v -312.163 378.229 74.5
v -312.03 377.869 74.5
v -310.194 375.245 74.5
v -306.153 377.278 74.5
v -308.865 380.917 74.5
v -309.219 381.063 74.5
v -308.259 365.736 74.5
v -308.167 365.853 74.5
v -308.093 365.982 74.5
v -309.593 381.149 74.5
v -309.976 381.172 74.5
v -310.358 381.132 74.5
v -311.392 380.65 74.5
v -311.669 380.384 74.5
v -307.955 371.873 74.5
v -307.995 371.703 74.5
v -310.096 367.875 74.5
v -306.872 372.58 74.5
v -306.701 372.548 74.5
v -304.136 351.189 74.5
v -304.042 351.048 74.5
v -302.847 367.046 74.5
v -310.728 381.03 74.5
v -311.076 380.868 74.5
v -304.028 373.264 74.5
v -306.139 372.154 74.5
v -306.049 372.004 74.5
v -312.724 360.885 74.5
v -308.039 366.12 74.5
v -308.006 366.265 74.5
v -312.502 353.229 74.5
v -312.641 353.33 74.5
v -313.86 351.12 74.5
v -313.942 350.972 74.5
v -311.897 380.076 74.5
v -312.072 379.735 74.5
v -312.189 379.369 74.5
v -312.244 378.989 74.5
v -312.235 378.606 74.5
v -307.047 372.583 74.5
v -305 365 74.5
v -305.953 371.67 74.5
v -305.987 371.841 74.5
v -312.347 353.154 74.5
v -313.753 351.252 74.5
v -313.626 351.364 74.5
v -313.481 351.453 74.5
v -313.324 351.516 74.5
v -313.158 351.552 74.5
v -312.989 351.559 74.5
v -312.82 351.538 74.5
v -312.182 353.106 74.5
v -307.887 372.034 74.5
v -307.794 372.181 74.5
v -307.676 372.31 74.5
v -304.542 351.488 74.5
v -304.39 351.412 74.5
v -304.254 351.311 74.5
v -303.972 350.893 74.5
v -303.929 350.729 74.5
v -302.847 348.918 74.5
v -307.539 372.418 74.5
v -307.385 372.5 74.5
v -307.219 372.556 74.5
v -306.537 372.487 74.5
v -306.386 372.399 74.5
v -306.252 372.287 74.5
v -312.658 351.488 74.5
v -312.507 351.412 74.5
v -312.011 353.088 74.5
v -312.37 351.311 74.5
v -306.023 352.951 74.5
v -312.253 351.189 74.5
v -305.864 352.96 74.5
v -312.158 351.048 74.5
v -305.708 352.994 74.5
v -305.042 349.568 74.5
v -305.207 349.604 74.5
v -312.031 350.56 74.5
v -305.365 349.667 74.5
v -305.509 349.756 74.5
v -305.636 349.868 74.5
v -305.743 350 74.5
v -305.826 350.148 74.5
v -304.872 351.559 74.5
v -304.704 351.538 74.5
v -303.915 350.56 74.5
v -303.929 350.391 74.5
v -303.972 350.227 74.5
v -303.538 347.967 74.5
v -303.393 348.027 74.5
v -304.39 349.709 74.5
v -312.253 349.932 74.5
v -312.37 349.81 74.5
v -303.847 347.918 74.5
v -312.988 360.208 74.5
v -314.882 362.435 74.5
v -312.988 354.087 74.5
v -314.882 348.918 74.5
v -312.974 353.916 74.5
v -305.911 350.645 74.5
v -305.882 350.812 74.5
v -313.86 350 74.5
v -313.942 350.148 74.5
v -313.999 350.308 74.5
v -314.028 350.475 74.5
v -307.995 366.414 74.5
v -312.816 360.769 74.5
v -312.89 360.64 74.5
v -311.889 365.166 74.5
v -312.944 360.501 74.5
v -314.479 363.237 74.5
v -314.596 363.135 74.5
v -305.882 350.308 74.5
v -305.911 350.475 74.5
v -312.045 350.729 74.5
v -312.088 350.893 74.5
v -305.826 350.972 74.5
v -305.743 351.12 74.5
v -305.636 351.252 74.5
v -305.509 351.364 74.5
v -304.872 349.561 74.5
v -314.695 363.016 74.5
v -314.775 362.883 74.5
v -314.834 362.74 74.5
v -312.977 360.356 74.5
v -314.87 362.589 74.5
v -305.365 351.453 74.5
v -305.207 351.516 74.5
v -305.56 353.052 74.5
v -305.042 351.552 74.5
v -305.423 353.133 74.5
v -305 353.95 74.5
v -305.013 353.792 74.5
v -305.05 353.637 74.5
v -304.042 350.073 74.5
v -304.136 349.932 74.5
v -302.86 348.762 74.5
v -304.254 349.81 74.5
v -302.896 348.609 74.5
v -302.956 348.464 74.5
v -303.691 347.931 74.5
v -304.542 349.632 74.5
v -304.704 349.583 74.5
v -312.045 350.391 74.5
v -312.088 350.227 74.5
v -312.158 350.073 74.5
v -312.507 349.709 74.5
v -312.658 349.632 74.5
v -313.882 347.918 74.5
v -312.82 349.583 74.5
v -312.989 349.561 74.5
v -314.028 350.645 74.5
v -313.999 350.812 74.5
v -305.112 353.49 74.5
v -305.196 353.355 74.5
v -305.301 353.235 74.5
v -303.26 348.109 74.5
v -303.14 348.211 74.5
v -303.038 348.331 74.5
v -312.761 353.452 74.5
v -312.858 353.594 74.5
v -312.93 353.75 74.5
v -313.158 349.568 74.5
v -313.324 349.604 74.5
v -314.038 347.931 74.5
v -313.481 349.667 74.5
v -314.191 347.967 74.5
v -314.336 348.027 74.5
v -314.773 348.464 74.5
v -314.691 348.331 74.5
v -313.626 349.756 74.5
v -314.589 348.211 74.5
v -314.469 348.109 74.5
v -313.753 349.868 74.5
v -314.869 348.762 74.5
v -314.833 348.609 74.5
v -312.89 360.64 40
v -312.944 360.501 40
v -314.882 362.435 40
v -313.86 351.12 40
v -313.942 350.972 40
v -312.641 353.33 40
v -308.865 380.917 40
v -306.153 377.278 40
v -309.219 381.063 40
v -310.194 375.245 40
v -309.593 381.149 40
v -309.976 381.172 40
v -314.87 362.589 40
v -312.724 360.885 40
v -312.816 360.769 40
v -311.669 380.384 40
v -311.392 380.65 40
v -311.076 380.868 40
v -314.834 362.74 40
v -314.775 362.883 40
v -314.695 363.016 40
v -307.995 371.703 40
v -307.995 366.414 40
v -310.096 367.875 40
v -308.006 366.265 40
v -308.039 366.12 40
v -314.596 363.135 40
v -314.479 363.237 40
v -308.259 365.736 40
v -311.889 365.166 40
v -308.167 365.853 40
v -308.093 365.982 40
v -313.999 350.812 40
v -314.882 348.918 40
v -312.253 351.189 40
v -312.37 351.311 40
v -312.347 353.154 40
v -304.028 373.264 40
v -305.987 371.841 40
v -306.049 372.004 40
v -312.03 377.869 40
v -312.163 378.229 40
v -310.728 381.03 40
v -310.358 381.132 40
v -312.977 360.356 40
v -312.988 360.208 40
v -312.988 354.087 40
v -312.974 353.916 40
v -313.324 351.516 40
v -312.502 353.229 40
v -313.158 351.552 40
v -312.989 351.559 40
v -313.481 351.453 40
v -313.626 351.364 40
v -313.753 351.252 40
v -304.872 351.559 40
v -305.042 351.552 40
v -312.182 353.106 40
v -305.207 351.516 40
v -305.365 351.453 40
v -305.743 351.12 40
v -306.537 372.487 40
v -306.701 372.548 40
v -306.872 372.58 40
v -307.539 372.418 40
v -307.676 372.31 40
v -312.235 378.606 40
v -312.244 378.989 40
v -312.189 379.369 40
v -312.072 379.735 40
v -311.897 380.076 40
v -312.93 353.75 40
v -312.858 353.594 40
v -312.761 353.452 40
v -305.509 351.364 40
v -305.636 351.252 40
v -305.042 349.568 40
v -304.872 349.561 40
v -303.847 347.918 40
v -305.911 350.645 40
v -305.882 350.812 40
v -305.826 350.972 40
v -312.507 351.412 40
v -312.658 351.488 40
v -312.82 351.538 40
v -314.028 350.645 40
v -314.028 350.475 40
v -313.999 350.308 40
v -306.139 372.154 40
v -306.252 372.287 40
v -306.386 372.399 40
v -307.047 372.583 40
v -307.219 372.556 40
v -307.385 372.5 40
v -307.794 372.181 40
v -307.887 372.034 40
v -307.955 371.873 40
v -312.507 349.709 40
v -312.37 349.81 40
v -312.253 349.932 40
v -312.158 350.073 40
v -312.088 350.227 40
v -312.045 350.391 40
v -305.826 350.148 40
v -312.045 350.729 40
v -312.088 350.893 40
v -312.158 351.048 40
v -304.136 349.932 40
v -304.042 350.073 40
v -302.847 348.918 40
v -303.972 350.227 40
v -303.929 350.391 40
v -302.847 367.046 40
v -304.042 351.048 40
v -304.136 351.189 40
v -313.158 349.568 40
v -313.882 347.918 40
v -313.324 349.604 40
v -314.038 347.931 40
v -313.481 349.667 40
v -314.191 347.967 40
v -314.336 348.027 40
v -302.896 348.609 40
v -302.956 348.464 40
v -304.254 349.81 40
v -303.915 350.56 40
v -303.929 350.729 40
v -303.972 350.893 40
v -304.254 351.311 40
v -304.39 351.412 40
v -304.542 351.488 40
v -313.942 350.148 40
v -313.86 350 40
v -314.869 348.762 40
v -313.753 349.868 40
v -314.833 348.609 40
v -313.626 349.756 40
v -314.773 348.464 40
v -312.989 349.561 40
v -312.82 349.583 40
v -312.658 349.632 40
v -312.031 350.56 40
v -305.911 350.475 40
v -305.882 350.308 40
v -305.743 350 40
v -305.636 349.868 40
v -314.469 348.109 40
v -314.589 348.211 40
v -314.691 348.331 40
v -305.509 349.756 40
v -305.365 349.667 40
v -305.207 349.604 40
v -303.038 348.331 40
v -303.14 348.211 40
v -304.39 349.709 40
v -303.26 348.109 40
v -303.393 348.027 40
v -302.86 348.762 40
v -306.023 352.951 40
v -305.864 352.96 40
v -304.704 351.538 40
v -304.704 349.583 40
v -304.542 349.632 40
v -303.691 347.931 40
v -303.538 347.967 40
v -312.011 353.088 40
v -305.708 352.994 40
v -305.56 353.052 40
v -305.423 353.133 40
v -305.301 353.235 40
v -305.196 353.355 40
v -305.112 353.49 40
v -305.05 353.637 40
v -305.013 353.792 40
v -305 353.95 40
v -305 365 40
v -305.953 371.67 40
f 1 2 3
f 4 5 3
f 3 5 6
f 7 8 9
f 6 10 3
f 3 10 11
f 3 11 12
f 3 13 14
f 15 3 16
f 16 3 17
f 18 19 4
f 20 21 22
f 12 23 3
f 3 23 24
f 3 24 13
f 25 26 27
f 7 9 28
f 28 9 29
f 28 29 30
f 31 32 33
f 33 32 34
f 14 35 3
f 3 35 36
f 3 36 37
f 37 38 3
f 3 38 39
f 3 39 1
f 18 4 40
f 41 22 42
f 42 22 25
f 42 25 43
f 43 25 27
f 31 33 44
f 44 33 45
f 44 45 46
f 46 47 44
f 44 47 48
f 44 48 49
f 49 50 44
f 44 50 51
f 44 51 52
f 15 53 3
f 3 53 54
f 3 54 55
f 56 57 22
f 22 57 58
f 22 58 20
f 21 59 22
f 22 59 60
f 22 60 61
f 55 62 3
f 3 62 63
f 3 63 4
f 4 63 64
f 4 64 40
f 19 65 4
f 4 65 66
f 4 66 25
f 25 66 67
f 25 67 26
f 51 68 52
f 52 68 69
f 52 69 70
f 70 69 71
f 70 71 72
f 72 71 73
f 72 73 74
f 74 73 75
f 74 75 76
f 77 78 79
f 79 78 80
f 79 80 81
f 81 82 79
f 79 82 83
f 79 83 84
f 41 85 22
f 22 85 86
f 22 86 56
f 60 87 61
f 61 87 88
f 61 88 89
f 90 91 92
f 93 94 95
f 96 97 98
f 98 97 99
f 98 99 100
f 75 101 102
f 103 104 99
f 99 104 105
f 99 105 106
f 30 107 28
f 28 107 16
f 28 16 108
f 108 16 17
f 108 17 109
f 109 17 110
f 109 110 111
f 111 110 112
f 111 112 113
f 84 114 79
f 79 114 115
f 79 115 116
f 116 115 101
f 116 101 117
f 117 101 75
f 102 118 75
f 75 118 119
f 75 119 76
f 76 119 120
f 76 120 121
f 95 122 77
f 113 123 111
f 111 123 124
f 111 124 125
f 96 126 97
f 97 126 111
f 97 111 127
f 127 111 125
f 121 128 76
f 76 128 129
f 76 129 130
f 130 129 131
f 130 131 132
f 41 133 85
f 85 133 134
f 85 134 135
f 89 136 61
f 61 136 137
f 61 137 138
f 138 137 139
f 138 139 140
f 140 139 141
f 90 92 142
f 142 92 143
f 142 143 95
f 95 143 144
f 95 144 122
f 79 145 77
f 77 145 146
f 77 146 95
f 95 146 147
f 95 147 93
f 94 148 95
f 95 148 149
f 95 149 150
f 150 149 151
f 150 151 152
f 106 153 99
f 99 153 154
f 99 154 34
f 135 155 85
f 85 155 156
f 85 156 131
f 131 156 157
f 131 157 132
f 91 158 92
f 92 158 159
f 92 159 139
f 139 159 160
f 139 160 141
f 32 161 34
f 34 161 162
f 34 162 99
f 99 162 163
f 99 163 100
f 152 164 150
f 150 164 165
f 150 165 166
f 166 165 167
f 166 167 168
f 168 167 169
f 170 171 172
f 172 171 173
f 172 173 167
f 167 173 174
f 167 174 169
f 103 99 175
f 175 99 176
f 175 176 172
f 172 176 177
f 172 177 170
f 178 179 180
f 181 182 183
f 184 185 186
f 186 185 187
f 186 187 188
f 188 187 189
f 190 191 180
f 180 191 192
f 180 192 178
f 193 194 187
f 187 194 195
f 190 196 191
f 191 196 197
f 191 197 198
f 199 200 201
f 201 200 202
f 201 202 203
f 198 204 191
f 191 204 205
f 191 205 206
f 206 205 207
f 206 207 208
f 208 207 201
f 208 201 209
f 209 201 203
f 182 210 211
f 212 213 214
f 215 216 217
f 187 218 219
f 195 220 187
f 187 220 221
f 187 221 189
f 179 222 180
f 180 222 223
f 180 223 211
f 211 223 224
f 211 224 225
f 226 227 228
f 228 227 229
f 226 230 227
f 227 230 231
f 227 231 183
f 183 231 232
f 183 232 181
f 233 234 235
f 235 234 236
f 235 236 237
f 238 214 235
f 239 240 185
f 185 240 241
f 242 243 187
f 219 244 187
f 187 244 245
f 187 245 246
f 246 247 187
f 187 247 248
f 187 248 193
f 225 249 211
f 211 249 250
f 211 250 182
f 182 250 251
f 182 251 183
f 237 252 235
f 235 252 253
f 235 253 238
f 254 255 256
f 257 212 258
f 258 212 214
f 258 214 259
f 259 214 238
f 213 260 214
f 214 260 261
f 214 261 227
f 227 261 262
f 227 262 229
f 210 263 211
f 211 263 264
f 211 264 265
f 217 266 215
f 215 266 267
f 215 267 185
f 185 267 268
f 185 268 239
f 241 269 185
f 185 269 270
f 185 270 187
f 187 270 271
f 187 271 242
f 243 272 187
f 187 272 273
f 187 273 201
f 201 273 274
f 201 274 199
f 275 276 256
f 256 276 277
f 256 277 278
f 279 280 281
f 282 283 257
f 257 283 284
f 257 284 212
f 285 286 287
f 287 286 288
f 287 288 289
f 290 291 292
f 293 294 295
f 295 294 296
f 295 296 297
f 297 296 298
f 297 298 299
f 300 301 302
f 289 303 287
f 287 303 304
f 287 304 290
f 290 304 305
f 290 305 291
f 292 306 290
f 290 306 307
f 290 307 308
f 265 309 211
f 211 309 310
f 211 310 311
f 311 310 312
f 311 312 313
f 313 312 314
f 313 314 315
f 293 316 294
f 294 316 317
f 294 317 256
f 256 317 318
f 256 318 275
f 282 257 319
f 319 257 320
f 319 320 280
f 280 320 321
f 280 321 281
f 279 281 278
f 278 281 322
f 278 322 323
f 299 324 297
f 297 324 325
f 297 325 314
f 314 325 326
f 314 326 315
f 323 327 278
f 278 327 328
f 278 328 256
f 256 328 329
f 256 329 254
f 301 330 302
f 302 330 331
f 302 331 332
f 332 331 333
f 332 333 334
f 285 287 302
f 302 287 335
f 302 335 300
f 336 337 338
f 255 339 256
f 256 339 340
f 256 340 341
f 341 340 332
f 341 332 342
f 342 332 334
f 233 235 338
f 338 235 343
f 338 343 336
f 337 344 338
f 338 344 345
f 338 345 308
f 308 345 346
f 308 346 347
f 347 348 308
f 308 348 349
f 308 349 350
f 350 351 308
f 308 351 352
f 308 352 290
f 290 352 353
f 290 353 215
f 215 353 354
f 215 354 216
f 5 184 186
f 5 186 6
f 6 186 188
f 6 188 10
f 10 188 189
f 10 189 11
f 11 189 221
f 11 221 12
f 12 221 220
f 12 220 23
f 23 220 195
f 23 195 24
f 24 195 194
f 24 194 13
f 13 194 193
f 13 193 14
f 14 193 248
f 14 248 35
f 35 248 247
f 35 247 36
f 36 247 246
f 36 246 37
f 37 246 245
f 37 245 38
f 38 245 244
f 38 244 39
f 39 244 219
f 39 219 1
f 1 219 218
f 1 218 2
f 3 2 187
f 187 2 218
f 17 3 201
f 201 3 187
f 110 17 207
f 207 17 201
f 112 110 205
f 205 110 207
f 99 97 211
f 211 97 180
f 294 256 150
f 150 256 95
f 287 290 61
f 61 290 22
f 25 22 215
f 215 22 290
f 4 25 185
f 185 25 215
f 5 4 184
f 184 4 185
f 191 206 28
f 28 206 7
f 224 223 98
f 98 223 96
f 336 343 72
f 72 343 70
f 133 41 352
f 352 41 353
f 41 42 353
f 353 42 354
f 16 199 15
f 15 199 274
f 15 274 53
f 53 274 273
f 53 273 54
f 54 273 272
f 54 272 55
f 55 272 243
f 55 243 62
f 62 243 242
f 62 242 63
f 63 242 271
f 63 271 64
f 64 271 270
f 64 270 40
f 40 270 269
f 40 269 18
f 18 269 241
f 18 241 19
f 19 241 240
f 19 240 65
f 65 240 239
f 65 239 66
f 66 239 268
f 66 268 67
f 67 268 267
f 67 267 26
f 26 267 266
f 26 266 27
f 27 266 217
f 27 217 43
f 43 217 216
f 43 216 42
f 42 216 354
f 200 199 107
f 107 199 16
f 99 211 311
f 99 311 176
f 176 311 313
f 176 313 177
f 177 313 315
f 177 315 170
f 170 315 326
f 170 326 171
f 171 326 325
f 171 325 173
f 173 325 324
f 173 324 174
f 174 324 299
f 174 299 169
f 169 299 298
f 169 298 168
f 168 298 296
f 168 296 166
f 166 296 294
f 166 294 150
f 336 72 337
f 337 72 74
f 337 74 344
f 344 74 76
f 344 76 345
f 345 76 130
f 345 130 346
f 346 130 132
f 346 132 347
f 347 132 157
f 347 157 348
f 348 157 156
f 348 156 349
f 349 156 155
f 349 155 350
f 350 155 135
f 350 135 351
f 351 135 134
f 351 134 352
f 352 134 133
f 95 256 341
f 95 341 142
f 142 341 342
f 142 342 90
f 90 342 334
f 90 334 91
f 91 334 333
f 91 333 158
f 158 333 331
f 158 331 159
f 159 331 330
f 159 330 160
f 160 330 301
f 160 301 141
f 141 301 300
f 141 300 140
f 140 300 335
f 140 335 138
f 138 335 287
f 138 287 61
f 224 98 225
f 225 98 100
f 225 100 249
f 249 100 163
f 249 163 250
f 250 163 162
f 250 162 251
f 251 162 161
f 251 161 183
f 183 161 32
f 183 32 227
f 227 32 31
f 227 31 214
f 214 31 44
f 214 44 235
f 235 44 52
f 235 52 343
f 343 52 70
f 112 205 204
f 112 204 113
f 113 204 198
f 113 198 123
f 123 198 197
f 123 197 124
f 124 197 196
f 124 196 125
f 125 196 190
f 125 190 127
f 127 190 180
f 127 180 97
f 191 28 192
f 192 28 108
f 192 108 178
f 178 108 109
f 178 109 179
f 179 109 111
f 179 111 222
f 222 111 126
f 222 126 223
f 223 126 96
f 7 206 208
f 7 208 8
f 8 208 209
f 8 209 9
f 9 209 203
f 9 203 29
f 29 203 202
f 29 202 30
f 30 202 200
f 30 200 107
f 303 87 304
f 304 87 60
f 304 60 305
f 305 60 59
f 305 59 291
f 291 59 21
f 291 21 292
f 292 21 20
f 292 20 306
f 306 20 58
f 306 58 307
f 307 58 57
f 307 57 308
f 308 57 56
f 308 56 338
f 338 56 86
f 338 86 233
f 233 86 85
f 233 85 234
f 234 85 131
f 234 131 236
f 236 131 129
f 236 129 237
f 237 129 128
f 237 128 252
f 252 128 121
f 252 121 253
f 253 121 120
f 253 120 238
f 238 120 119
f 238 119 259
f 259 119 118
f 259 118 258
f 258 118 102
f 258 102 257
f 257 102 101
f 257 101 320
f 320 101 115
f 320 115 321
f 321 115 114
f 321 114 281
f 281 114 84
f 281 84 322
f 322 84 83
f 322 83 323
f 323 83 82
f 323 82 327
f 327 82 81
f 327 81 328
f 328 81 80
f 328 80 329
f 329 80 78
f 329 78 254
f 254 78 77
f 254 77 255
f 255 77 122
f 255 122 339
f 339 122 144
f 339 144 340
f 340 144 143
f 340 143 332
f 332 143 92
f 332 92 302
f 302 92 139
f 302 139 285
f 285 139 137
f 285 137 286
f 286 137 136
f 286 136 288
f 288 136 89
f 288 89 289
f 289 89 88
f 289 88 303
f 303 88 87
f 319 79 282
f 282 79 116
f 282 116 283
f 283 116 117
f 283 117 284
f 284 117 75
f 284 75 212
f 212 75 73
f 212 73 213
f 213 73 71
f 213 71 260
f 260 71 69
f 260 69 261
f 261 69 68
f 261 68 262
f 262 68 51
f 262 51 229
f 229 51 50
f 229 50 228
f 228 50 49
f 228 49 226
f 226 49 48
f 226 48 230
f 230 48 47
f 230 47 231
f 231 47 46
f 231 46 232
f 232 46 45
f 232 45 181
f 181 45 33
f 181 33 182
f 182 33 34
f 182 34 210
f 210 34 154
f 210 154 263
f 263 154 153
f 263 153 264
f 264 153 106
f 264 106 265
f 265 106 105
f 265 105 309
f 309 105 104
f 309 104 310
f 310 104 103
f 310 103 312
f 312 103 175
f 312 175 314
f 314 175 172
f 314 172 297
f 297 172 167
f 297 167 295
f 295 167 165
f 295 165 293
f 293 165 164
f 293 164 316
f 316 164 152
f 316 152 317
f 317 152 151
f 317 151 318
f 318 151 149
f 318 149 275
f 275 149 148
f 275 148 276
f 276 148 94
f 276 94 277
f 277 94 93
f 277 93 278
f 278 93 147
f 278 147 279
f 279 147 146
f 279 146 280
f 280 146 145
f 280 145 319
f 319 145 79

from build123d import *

# Parameters (mm, degrees)
BOSS_EXTRUDE1_DEPTH = 34.5
FILLET1_R           = 1
SKETCH2_R           = 1
CUT_EXTRUDE1_DEPTH  = 496.614236654


with BuildPart() as part:
    # Sketch1 → Boss-Extrude1 (new body)
    with BuildSketch(Plane.XY.offset(40)):
        with BuildLine():
            Line((-312.030492528, 377.868524993), (-310.193868717, 375.244776692))
            Line((-310.193868717, 375.244776692), (-310.096008301, 367.875213623))
            Line((-310.096008301, 367.875213623), (-311.889068604, 365.166412354))
            Line((-311.889068604, 365.166412354), (-314.88168335, 362.936676025))
            Line((-314.88168335, 362.936676025), (-314.88168335, 347.918438133))
            Line((-314.88168335, 347.918438133), (-302.847373473, 347.918438133))
            Line((-302.847373473, 347.918438133), (-302.847373473, 367.04556325))
            Line((-302.847373473, 367.04556325), (-304.028060208, 373.263846724))
            Line((-304.028060208, 373.263846724), (-306.153296332, 377.278181625))
            Line((-306.153296332, 377.278181625), (-308.864528411, 380.917030307))
            ThreePointArc((-308.864528411, 380.917030307), (-311.535911341, 380.523114569), (-312.030492528, 377.868524993))
        make_face()
        with BuildLine():
            Line((-312.988408734, 360.598376943), (-312.988408734, 353.109979303))
            Line((-312.988408734, 353.109979303), (-305, 352.927314193))
            Line((-305, 352.927314193), (-305, 365))
            Line((-305, 365), (-305.952850342, 371.670013428))
            ThreePointArc((-305.952850342, 371.670013428), (-306.959348498, 372.584855641), (-307.99460106, 371.702683918))
            Line((-307.99460106, 371.702683918), (-307.99460106, 366.023339102))
            Line((-307.99460106, 366.023339102), (-312.988408734, 360.598376943))
        make_face(mode=Mode.SUBTRACT)
    extrude(amount=BOSS_EXTRUDE1_DEPTH)

    # Fillet1
    fillet1_edges = [part.edges().sort_by_distance(p)[0] for p in [
        (-302.847373473, 347.918438133, 57.25),
        (-314.88168335, 347.918438133, 57.25),
        (-314.88168335, 362.936676025, 57.25),
        (-307.99460106, 366.023339102, 57.25),
        (-312.988408734, 360.598376943, 57.25),
        (-312.988408734, 353.109979303, 57.25),
        (-305, 352.927314193, 57.25),
    ]]
    fillet(fillet1_edges, radius=FILLET1_R)

    # Sketch2 → Cut-Extrude1 (cut, through all)
    with BuildSketch(Plane.XY.offset(74.5)):
        with Locations((-313.031111026, 350.560286037)):
            Circle(SKETCH2_R)
        with Locations((-304.91451991, 350.560286037)):
            Circle(SKETCH2_R)
    extrude(amount=-CUT_EXTRUDE1_DEPTH, mode=Mode.SUBTRACT)


solid = part.part
